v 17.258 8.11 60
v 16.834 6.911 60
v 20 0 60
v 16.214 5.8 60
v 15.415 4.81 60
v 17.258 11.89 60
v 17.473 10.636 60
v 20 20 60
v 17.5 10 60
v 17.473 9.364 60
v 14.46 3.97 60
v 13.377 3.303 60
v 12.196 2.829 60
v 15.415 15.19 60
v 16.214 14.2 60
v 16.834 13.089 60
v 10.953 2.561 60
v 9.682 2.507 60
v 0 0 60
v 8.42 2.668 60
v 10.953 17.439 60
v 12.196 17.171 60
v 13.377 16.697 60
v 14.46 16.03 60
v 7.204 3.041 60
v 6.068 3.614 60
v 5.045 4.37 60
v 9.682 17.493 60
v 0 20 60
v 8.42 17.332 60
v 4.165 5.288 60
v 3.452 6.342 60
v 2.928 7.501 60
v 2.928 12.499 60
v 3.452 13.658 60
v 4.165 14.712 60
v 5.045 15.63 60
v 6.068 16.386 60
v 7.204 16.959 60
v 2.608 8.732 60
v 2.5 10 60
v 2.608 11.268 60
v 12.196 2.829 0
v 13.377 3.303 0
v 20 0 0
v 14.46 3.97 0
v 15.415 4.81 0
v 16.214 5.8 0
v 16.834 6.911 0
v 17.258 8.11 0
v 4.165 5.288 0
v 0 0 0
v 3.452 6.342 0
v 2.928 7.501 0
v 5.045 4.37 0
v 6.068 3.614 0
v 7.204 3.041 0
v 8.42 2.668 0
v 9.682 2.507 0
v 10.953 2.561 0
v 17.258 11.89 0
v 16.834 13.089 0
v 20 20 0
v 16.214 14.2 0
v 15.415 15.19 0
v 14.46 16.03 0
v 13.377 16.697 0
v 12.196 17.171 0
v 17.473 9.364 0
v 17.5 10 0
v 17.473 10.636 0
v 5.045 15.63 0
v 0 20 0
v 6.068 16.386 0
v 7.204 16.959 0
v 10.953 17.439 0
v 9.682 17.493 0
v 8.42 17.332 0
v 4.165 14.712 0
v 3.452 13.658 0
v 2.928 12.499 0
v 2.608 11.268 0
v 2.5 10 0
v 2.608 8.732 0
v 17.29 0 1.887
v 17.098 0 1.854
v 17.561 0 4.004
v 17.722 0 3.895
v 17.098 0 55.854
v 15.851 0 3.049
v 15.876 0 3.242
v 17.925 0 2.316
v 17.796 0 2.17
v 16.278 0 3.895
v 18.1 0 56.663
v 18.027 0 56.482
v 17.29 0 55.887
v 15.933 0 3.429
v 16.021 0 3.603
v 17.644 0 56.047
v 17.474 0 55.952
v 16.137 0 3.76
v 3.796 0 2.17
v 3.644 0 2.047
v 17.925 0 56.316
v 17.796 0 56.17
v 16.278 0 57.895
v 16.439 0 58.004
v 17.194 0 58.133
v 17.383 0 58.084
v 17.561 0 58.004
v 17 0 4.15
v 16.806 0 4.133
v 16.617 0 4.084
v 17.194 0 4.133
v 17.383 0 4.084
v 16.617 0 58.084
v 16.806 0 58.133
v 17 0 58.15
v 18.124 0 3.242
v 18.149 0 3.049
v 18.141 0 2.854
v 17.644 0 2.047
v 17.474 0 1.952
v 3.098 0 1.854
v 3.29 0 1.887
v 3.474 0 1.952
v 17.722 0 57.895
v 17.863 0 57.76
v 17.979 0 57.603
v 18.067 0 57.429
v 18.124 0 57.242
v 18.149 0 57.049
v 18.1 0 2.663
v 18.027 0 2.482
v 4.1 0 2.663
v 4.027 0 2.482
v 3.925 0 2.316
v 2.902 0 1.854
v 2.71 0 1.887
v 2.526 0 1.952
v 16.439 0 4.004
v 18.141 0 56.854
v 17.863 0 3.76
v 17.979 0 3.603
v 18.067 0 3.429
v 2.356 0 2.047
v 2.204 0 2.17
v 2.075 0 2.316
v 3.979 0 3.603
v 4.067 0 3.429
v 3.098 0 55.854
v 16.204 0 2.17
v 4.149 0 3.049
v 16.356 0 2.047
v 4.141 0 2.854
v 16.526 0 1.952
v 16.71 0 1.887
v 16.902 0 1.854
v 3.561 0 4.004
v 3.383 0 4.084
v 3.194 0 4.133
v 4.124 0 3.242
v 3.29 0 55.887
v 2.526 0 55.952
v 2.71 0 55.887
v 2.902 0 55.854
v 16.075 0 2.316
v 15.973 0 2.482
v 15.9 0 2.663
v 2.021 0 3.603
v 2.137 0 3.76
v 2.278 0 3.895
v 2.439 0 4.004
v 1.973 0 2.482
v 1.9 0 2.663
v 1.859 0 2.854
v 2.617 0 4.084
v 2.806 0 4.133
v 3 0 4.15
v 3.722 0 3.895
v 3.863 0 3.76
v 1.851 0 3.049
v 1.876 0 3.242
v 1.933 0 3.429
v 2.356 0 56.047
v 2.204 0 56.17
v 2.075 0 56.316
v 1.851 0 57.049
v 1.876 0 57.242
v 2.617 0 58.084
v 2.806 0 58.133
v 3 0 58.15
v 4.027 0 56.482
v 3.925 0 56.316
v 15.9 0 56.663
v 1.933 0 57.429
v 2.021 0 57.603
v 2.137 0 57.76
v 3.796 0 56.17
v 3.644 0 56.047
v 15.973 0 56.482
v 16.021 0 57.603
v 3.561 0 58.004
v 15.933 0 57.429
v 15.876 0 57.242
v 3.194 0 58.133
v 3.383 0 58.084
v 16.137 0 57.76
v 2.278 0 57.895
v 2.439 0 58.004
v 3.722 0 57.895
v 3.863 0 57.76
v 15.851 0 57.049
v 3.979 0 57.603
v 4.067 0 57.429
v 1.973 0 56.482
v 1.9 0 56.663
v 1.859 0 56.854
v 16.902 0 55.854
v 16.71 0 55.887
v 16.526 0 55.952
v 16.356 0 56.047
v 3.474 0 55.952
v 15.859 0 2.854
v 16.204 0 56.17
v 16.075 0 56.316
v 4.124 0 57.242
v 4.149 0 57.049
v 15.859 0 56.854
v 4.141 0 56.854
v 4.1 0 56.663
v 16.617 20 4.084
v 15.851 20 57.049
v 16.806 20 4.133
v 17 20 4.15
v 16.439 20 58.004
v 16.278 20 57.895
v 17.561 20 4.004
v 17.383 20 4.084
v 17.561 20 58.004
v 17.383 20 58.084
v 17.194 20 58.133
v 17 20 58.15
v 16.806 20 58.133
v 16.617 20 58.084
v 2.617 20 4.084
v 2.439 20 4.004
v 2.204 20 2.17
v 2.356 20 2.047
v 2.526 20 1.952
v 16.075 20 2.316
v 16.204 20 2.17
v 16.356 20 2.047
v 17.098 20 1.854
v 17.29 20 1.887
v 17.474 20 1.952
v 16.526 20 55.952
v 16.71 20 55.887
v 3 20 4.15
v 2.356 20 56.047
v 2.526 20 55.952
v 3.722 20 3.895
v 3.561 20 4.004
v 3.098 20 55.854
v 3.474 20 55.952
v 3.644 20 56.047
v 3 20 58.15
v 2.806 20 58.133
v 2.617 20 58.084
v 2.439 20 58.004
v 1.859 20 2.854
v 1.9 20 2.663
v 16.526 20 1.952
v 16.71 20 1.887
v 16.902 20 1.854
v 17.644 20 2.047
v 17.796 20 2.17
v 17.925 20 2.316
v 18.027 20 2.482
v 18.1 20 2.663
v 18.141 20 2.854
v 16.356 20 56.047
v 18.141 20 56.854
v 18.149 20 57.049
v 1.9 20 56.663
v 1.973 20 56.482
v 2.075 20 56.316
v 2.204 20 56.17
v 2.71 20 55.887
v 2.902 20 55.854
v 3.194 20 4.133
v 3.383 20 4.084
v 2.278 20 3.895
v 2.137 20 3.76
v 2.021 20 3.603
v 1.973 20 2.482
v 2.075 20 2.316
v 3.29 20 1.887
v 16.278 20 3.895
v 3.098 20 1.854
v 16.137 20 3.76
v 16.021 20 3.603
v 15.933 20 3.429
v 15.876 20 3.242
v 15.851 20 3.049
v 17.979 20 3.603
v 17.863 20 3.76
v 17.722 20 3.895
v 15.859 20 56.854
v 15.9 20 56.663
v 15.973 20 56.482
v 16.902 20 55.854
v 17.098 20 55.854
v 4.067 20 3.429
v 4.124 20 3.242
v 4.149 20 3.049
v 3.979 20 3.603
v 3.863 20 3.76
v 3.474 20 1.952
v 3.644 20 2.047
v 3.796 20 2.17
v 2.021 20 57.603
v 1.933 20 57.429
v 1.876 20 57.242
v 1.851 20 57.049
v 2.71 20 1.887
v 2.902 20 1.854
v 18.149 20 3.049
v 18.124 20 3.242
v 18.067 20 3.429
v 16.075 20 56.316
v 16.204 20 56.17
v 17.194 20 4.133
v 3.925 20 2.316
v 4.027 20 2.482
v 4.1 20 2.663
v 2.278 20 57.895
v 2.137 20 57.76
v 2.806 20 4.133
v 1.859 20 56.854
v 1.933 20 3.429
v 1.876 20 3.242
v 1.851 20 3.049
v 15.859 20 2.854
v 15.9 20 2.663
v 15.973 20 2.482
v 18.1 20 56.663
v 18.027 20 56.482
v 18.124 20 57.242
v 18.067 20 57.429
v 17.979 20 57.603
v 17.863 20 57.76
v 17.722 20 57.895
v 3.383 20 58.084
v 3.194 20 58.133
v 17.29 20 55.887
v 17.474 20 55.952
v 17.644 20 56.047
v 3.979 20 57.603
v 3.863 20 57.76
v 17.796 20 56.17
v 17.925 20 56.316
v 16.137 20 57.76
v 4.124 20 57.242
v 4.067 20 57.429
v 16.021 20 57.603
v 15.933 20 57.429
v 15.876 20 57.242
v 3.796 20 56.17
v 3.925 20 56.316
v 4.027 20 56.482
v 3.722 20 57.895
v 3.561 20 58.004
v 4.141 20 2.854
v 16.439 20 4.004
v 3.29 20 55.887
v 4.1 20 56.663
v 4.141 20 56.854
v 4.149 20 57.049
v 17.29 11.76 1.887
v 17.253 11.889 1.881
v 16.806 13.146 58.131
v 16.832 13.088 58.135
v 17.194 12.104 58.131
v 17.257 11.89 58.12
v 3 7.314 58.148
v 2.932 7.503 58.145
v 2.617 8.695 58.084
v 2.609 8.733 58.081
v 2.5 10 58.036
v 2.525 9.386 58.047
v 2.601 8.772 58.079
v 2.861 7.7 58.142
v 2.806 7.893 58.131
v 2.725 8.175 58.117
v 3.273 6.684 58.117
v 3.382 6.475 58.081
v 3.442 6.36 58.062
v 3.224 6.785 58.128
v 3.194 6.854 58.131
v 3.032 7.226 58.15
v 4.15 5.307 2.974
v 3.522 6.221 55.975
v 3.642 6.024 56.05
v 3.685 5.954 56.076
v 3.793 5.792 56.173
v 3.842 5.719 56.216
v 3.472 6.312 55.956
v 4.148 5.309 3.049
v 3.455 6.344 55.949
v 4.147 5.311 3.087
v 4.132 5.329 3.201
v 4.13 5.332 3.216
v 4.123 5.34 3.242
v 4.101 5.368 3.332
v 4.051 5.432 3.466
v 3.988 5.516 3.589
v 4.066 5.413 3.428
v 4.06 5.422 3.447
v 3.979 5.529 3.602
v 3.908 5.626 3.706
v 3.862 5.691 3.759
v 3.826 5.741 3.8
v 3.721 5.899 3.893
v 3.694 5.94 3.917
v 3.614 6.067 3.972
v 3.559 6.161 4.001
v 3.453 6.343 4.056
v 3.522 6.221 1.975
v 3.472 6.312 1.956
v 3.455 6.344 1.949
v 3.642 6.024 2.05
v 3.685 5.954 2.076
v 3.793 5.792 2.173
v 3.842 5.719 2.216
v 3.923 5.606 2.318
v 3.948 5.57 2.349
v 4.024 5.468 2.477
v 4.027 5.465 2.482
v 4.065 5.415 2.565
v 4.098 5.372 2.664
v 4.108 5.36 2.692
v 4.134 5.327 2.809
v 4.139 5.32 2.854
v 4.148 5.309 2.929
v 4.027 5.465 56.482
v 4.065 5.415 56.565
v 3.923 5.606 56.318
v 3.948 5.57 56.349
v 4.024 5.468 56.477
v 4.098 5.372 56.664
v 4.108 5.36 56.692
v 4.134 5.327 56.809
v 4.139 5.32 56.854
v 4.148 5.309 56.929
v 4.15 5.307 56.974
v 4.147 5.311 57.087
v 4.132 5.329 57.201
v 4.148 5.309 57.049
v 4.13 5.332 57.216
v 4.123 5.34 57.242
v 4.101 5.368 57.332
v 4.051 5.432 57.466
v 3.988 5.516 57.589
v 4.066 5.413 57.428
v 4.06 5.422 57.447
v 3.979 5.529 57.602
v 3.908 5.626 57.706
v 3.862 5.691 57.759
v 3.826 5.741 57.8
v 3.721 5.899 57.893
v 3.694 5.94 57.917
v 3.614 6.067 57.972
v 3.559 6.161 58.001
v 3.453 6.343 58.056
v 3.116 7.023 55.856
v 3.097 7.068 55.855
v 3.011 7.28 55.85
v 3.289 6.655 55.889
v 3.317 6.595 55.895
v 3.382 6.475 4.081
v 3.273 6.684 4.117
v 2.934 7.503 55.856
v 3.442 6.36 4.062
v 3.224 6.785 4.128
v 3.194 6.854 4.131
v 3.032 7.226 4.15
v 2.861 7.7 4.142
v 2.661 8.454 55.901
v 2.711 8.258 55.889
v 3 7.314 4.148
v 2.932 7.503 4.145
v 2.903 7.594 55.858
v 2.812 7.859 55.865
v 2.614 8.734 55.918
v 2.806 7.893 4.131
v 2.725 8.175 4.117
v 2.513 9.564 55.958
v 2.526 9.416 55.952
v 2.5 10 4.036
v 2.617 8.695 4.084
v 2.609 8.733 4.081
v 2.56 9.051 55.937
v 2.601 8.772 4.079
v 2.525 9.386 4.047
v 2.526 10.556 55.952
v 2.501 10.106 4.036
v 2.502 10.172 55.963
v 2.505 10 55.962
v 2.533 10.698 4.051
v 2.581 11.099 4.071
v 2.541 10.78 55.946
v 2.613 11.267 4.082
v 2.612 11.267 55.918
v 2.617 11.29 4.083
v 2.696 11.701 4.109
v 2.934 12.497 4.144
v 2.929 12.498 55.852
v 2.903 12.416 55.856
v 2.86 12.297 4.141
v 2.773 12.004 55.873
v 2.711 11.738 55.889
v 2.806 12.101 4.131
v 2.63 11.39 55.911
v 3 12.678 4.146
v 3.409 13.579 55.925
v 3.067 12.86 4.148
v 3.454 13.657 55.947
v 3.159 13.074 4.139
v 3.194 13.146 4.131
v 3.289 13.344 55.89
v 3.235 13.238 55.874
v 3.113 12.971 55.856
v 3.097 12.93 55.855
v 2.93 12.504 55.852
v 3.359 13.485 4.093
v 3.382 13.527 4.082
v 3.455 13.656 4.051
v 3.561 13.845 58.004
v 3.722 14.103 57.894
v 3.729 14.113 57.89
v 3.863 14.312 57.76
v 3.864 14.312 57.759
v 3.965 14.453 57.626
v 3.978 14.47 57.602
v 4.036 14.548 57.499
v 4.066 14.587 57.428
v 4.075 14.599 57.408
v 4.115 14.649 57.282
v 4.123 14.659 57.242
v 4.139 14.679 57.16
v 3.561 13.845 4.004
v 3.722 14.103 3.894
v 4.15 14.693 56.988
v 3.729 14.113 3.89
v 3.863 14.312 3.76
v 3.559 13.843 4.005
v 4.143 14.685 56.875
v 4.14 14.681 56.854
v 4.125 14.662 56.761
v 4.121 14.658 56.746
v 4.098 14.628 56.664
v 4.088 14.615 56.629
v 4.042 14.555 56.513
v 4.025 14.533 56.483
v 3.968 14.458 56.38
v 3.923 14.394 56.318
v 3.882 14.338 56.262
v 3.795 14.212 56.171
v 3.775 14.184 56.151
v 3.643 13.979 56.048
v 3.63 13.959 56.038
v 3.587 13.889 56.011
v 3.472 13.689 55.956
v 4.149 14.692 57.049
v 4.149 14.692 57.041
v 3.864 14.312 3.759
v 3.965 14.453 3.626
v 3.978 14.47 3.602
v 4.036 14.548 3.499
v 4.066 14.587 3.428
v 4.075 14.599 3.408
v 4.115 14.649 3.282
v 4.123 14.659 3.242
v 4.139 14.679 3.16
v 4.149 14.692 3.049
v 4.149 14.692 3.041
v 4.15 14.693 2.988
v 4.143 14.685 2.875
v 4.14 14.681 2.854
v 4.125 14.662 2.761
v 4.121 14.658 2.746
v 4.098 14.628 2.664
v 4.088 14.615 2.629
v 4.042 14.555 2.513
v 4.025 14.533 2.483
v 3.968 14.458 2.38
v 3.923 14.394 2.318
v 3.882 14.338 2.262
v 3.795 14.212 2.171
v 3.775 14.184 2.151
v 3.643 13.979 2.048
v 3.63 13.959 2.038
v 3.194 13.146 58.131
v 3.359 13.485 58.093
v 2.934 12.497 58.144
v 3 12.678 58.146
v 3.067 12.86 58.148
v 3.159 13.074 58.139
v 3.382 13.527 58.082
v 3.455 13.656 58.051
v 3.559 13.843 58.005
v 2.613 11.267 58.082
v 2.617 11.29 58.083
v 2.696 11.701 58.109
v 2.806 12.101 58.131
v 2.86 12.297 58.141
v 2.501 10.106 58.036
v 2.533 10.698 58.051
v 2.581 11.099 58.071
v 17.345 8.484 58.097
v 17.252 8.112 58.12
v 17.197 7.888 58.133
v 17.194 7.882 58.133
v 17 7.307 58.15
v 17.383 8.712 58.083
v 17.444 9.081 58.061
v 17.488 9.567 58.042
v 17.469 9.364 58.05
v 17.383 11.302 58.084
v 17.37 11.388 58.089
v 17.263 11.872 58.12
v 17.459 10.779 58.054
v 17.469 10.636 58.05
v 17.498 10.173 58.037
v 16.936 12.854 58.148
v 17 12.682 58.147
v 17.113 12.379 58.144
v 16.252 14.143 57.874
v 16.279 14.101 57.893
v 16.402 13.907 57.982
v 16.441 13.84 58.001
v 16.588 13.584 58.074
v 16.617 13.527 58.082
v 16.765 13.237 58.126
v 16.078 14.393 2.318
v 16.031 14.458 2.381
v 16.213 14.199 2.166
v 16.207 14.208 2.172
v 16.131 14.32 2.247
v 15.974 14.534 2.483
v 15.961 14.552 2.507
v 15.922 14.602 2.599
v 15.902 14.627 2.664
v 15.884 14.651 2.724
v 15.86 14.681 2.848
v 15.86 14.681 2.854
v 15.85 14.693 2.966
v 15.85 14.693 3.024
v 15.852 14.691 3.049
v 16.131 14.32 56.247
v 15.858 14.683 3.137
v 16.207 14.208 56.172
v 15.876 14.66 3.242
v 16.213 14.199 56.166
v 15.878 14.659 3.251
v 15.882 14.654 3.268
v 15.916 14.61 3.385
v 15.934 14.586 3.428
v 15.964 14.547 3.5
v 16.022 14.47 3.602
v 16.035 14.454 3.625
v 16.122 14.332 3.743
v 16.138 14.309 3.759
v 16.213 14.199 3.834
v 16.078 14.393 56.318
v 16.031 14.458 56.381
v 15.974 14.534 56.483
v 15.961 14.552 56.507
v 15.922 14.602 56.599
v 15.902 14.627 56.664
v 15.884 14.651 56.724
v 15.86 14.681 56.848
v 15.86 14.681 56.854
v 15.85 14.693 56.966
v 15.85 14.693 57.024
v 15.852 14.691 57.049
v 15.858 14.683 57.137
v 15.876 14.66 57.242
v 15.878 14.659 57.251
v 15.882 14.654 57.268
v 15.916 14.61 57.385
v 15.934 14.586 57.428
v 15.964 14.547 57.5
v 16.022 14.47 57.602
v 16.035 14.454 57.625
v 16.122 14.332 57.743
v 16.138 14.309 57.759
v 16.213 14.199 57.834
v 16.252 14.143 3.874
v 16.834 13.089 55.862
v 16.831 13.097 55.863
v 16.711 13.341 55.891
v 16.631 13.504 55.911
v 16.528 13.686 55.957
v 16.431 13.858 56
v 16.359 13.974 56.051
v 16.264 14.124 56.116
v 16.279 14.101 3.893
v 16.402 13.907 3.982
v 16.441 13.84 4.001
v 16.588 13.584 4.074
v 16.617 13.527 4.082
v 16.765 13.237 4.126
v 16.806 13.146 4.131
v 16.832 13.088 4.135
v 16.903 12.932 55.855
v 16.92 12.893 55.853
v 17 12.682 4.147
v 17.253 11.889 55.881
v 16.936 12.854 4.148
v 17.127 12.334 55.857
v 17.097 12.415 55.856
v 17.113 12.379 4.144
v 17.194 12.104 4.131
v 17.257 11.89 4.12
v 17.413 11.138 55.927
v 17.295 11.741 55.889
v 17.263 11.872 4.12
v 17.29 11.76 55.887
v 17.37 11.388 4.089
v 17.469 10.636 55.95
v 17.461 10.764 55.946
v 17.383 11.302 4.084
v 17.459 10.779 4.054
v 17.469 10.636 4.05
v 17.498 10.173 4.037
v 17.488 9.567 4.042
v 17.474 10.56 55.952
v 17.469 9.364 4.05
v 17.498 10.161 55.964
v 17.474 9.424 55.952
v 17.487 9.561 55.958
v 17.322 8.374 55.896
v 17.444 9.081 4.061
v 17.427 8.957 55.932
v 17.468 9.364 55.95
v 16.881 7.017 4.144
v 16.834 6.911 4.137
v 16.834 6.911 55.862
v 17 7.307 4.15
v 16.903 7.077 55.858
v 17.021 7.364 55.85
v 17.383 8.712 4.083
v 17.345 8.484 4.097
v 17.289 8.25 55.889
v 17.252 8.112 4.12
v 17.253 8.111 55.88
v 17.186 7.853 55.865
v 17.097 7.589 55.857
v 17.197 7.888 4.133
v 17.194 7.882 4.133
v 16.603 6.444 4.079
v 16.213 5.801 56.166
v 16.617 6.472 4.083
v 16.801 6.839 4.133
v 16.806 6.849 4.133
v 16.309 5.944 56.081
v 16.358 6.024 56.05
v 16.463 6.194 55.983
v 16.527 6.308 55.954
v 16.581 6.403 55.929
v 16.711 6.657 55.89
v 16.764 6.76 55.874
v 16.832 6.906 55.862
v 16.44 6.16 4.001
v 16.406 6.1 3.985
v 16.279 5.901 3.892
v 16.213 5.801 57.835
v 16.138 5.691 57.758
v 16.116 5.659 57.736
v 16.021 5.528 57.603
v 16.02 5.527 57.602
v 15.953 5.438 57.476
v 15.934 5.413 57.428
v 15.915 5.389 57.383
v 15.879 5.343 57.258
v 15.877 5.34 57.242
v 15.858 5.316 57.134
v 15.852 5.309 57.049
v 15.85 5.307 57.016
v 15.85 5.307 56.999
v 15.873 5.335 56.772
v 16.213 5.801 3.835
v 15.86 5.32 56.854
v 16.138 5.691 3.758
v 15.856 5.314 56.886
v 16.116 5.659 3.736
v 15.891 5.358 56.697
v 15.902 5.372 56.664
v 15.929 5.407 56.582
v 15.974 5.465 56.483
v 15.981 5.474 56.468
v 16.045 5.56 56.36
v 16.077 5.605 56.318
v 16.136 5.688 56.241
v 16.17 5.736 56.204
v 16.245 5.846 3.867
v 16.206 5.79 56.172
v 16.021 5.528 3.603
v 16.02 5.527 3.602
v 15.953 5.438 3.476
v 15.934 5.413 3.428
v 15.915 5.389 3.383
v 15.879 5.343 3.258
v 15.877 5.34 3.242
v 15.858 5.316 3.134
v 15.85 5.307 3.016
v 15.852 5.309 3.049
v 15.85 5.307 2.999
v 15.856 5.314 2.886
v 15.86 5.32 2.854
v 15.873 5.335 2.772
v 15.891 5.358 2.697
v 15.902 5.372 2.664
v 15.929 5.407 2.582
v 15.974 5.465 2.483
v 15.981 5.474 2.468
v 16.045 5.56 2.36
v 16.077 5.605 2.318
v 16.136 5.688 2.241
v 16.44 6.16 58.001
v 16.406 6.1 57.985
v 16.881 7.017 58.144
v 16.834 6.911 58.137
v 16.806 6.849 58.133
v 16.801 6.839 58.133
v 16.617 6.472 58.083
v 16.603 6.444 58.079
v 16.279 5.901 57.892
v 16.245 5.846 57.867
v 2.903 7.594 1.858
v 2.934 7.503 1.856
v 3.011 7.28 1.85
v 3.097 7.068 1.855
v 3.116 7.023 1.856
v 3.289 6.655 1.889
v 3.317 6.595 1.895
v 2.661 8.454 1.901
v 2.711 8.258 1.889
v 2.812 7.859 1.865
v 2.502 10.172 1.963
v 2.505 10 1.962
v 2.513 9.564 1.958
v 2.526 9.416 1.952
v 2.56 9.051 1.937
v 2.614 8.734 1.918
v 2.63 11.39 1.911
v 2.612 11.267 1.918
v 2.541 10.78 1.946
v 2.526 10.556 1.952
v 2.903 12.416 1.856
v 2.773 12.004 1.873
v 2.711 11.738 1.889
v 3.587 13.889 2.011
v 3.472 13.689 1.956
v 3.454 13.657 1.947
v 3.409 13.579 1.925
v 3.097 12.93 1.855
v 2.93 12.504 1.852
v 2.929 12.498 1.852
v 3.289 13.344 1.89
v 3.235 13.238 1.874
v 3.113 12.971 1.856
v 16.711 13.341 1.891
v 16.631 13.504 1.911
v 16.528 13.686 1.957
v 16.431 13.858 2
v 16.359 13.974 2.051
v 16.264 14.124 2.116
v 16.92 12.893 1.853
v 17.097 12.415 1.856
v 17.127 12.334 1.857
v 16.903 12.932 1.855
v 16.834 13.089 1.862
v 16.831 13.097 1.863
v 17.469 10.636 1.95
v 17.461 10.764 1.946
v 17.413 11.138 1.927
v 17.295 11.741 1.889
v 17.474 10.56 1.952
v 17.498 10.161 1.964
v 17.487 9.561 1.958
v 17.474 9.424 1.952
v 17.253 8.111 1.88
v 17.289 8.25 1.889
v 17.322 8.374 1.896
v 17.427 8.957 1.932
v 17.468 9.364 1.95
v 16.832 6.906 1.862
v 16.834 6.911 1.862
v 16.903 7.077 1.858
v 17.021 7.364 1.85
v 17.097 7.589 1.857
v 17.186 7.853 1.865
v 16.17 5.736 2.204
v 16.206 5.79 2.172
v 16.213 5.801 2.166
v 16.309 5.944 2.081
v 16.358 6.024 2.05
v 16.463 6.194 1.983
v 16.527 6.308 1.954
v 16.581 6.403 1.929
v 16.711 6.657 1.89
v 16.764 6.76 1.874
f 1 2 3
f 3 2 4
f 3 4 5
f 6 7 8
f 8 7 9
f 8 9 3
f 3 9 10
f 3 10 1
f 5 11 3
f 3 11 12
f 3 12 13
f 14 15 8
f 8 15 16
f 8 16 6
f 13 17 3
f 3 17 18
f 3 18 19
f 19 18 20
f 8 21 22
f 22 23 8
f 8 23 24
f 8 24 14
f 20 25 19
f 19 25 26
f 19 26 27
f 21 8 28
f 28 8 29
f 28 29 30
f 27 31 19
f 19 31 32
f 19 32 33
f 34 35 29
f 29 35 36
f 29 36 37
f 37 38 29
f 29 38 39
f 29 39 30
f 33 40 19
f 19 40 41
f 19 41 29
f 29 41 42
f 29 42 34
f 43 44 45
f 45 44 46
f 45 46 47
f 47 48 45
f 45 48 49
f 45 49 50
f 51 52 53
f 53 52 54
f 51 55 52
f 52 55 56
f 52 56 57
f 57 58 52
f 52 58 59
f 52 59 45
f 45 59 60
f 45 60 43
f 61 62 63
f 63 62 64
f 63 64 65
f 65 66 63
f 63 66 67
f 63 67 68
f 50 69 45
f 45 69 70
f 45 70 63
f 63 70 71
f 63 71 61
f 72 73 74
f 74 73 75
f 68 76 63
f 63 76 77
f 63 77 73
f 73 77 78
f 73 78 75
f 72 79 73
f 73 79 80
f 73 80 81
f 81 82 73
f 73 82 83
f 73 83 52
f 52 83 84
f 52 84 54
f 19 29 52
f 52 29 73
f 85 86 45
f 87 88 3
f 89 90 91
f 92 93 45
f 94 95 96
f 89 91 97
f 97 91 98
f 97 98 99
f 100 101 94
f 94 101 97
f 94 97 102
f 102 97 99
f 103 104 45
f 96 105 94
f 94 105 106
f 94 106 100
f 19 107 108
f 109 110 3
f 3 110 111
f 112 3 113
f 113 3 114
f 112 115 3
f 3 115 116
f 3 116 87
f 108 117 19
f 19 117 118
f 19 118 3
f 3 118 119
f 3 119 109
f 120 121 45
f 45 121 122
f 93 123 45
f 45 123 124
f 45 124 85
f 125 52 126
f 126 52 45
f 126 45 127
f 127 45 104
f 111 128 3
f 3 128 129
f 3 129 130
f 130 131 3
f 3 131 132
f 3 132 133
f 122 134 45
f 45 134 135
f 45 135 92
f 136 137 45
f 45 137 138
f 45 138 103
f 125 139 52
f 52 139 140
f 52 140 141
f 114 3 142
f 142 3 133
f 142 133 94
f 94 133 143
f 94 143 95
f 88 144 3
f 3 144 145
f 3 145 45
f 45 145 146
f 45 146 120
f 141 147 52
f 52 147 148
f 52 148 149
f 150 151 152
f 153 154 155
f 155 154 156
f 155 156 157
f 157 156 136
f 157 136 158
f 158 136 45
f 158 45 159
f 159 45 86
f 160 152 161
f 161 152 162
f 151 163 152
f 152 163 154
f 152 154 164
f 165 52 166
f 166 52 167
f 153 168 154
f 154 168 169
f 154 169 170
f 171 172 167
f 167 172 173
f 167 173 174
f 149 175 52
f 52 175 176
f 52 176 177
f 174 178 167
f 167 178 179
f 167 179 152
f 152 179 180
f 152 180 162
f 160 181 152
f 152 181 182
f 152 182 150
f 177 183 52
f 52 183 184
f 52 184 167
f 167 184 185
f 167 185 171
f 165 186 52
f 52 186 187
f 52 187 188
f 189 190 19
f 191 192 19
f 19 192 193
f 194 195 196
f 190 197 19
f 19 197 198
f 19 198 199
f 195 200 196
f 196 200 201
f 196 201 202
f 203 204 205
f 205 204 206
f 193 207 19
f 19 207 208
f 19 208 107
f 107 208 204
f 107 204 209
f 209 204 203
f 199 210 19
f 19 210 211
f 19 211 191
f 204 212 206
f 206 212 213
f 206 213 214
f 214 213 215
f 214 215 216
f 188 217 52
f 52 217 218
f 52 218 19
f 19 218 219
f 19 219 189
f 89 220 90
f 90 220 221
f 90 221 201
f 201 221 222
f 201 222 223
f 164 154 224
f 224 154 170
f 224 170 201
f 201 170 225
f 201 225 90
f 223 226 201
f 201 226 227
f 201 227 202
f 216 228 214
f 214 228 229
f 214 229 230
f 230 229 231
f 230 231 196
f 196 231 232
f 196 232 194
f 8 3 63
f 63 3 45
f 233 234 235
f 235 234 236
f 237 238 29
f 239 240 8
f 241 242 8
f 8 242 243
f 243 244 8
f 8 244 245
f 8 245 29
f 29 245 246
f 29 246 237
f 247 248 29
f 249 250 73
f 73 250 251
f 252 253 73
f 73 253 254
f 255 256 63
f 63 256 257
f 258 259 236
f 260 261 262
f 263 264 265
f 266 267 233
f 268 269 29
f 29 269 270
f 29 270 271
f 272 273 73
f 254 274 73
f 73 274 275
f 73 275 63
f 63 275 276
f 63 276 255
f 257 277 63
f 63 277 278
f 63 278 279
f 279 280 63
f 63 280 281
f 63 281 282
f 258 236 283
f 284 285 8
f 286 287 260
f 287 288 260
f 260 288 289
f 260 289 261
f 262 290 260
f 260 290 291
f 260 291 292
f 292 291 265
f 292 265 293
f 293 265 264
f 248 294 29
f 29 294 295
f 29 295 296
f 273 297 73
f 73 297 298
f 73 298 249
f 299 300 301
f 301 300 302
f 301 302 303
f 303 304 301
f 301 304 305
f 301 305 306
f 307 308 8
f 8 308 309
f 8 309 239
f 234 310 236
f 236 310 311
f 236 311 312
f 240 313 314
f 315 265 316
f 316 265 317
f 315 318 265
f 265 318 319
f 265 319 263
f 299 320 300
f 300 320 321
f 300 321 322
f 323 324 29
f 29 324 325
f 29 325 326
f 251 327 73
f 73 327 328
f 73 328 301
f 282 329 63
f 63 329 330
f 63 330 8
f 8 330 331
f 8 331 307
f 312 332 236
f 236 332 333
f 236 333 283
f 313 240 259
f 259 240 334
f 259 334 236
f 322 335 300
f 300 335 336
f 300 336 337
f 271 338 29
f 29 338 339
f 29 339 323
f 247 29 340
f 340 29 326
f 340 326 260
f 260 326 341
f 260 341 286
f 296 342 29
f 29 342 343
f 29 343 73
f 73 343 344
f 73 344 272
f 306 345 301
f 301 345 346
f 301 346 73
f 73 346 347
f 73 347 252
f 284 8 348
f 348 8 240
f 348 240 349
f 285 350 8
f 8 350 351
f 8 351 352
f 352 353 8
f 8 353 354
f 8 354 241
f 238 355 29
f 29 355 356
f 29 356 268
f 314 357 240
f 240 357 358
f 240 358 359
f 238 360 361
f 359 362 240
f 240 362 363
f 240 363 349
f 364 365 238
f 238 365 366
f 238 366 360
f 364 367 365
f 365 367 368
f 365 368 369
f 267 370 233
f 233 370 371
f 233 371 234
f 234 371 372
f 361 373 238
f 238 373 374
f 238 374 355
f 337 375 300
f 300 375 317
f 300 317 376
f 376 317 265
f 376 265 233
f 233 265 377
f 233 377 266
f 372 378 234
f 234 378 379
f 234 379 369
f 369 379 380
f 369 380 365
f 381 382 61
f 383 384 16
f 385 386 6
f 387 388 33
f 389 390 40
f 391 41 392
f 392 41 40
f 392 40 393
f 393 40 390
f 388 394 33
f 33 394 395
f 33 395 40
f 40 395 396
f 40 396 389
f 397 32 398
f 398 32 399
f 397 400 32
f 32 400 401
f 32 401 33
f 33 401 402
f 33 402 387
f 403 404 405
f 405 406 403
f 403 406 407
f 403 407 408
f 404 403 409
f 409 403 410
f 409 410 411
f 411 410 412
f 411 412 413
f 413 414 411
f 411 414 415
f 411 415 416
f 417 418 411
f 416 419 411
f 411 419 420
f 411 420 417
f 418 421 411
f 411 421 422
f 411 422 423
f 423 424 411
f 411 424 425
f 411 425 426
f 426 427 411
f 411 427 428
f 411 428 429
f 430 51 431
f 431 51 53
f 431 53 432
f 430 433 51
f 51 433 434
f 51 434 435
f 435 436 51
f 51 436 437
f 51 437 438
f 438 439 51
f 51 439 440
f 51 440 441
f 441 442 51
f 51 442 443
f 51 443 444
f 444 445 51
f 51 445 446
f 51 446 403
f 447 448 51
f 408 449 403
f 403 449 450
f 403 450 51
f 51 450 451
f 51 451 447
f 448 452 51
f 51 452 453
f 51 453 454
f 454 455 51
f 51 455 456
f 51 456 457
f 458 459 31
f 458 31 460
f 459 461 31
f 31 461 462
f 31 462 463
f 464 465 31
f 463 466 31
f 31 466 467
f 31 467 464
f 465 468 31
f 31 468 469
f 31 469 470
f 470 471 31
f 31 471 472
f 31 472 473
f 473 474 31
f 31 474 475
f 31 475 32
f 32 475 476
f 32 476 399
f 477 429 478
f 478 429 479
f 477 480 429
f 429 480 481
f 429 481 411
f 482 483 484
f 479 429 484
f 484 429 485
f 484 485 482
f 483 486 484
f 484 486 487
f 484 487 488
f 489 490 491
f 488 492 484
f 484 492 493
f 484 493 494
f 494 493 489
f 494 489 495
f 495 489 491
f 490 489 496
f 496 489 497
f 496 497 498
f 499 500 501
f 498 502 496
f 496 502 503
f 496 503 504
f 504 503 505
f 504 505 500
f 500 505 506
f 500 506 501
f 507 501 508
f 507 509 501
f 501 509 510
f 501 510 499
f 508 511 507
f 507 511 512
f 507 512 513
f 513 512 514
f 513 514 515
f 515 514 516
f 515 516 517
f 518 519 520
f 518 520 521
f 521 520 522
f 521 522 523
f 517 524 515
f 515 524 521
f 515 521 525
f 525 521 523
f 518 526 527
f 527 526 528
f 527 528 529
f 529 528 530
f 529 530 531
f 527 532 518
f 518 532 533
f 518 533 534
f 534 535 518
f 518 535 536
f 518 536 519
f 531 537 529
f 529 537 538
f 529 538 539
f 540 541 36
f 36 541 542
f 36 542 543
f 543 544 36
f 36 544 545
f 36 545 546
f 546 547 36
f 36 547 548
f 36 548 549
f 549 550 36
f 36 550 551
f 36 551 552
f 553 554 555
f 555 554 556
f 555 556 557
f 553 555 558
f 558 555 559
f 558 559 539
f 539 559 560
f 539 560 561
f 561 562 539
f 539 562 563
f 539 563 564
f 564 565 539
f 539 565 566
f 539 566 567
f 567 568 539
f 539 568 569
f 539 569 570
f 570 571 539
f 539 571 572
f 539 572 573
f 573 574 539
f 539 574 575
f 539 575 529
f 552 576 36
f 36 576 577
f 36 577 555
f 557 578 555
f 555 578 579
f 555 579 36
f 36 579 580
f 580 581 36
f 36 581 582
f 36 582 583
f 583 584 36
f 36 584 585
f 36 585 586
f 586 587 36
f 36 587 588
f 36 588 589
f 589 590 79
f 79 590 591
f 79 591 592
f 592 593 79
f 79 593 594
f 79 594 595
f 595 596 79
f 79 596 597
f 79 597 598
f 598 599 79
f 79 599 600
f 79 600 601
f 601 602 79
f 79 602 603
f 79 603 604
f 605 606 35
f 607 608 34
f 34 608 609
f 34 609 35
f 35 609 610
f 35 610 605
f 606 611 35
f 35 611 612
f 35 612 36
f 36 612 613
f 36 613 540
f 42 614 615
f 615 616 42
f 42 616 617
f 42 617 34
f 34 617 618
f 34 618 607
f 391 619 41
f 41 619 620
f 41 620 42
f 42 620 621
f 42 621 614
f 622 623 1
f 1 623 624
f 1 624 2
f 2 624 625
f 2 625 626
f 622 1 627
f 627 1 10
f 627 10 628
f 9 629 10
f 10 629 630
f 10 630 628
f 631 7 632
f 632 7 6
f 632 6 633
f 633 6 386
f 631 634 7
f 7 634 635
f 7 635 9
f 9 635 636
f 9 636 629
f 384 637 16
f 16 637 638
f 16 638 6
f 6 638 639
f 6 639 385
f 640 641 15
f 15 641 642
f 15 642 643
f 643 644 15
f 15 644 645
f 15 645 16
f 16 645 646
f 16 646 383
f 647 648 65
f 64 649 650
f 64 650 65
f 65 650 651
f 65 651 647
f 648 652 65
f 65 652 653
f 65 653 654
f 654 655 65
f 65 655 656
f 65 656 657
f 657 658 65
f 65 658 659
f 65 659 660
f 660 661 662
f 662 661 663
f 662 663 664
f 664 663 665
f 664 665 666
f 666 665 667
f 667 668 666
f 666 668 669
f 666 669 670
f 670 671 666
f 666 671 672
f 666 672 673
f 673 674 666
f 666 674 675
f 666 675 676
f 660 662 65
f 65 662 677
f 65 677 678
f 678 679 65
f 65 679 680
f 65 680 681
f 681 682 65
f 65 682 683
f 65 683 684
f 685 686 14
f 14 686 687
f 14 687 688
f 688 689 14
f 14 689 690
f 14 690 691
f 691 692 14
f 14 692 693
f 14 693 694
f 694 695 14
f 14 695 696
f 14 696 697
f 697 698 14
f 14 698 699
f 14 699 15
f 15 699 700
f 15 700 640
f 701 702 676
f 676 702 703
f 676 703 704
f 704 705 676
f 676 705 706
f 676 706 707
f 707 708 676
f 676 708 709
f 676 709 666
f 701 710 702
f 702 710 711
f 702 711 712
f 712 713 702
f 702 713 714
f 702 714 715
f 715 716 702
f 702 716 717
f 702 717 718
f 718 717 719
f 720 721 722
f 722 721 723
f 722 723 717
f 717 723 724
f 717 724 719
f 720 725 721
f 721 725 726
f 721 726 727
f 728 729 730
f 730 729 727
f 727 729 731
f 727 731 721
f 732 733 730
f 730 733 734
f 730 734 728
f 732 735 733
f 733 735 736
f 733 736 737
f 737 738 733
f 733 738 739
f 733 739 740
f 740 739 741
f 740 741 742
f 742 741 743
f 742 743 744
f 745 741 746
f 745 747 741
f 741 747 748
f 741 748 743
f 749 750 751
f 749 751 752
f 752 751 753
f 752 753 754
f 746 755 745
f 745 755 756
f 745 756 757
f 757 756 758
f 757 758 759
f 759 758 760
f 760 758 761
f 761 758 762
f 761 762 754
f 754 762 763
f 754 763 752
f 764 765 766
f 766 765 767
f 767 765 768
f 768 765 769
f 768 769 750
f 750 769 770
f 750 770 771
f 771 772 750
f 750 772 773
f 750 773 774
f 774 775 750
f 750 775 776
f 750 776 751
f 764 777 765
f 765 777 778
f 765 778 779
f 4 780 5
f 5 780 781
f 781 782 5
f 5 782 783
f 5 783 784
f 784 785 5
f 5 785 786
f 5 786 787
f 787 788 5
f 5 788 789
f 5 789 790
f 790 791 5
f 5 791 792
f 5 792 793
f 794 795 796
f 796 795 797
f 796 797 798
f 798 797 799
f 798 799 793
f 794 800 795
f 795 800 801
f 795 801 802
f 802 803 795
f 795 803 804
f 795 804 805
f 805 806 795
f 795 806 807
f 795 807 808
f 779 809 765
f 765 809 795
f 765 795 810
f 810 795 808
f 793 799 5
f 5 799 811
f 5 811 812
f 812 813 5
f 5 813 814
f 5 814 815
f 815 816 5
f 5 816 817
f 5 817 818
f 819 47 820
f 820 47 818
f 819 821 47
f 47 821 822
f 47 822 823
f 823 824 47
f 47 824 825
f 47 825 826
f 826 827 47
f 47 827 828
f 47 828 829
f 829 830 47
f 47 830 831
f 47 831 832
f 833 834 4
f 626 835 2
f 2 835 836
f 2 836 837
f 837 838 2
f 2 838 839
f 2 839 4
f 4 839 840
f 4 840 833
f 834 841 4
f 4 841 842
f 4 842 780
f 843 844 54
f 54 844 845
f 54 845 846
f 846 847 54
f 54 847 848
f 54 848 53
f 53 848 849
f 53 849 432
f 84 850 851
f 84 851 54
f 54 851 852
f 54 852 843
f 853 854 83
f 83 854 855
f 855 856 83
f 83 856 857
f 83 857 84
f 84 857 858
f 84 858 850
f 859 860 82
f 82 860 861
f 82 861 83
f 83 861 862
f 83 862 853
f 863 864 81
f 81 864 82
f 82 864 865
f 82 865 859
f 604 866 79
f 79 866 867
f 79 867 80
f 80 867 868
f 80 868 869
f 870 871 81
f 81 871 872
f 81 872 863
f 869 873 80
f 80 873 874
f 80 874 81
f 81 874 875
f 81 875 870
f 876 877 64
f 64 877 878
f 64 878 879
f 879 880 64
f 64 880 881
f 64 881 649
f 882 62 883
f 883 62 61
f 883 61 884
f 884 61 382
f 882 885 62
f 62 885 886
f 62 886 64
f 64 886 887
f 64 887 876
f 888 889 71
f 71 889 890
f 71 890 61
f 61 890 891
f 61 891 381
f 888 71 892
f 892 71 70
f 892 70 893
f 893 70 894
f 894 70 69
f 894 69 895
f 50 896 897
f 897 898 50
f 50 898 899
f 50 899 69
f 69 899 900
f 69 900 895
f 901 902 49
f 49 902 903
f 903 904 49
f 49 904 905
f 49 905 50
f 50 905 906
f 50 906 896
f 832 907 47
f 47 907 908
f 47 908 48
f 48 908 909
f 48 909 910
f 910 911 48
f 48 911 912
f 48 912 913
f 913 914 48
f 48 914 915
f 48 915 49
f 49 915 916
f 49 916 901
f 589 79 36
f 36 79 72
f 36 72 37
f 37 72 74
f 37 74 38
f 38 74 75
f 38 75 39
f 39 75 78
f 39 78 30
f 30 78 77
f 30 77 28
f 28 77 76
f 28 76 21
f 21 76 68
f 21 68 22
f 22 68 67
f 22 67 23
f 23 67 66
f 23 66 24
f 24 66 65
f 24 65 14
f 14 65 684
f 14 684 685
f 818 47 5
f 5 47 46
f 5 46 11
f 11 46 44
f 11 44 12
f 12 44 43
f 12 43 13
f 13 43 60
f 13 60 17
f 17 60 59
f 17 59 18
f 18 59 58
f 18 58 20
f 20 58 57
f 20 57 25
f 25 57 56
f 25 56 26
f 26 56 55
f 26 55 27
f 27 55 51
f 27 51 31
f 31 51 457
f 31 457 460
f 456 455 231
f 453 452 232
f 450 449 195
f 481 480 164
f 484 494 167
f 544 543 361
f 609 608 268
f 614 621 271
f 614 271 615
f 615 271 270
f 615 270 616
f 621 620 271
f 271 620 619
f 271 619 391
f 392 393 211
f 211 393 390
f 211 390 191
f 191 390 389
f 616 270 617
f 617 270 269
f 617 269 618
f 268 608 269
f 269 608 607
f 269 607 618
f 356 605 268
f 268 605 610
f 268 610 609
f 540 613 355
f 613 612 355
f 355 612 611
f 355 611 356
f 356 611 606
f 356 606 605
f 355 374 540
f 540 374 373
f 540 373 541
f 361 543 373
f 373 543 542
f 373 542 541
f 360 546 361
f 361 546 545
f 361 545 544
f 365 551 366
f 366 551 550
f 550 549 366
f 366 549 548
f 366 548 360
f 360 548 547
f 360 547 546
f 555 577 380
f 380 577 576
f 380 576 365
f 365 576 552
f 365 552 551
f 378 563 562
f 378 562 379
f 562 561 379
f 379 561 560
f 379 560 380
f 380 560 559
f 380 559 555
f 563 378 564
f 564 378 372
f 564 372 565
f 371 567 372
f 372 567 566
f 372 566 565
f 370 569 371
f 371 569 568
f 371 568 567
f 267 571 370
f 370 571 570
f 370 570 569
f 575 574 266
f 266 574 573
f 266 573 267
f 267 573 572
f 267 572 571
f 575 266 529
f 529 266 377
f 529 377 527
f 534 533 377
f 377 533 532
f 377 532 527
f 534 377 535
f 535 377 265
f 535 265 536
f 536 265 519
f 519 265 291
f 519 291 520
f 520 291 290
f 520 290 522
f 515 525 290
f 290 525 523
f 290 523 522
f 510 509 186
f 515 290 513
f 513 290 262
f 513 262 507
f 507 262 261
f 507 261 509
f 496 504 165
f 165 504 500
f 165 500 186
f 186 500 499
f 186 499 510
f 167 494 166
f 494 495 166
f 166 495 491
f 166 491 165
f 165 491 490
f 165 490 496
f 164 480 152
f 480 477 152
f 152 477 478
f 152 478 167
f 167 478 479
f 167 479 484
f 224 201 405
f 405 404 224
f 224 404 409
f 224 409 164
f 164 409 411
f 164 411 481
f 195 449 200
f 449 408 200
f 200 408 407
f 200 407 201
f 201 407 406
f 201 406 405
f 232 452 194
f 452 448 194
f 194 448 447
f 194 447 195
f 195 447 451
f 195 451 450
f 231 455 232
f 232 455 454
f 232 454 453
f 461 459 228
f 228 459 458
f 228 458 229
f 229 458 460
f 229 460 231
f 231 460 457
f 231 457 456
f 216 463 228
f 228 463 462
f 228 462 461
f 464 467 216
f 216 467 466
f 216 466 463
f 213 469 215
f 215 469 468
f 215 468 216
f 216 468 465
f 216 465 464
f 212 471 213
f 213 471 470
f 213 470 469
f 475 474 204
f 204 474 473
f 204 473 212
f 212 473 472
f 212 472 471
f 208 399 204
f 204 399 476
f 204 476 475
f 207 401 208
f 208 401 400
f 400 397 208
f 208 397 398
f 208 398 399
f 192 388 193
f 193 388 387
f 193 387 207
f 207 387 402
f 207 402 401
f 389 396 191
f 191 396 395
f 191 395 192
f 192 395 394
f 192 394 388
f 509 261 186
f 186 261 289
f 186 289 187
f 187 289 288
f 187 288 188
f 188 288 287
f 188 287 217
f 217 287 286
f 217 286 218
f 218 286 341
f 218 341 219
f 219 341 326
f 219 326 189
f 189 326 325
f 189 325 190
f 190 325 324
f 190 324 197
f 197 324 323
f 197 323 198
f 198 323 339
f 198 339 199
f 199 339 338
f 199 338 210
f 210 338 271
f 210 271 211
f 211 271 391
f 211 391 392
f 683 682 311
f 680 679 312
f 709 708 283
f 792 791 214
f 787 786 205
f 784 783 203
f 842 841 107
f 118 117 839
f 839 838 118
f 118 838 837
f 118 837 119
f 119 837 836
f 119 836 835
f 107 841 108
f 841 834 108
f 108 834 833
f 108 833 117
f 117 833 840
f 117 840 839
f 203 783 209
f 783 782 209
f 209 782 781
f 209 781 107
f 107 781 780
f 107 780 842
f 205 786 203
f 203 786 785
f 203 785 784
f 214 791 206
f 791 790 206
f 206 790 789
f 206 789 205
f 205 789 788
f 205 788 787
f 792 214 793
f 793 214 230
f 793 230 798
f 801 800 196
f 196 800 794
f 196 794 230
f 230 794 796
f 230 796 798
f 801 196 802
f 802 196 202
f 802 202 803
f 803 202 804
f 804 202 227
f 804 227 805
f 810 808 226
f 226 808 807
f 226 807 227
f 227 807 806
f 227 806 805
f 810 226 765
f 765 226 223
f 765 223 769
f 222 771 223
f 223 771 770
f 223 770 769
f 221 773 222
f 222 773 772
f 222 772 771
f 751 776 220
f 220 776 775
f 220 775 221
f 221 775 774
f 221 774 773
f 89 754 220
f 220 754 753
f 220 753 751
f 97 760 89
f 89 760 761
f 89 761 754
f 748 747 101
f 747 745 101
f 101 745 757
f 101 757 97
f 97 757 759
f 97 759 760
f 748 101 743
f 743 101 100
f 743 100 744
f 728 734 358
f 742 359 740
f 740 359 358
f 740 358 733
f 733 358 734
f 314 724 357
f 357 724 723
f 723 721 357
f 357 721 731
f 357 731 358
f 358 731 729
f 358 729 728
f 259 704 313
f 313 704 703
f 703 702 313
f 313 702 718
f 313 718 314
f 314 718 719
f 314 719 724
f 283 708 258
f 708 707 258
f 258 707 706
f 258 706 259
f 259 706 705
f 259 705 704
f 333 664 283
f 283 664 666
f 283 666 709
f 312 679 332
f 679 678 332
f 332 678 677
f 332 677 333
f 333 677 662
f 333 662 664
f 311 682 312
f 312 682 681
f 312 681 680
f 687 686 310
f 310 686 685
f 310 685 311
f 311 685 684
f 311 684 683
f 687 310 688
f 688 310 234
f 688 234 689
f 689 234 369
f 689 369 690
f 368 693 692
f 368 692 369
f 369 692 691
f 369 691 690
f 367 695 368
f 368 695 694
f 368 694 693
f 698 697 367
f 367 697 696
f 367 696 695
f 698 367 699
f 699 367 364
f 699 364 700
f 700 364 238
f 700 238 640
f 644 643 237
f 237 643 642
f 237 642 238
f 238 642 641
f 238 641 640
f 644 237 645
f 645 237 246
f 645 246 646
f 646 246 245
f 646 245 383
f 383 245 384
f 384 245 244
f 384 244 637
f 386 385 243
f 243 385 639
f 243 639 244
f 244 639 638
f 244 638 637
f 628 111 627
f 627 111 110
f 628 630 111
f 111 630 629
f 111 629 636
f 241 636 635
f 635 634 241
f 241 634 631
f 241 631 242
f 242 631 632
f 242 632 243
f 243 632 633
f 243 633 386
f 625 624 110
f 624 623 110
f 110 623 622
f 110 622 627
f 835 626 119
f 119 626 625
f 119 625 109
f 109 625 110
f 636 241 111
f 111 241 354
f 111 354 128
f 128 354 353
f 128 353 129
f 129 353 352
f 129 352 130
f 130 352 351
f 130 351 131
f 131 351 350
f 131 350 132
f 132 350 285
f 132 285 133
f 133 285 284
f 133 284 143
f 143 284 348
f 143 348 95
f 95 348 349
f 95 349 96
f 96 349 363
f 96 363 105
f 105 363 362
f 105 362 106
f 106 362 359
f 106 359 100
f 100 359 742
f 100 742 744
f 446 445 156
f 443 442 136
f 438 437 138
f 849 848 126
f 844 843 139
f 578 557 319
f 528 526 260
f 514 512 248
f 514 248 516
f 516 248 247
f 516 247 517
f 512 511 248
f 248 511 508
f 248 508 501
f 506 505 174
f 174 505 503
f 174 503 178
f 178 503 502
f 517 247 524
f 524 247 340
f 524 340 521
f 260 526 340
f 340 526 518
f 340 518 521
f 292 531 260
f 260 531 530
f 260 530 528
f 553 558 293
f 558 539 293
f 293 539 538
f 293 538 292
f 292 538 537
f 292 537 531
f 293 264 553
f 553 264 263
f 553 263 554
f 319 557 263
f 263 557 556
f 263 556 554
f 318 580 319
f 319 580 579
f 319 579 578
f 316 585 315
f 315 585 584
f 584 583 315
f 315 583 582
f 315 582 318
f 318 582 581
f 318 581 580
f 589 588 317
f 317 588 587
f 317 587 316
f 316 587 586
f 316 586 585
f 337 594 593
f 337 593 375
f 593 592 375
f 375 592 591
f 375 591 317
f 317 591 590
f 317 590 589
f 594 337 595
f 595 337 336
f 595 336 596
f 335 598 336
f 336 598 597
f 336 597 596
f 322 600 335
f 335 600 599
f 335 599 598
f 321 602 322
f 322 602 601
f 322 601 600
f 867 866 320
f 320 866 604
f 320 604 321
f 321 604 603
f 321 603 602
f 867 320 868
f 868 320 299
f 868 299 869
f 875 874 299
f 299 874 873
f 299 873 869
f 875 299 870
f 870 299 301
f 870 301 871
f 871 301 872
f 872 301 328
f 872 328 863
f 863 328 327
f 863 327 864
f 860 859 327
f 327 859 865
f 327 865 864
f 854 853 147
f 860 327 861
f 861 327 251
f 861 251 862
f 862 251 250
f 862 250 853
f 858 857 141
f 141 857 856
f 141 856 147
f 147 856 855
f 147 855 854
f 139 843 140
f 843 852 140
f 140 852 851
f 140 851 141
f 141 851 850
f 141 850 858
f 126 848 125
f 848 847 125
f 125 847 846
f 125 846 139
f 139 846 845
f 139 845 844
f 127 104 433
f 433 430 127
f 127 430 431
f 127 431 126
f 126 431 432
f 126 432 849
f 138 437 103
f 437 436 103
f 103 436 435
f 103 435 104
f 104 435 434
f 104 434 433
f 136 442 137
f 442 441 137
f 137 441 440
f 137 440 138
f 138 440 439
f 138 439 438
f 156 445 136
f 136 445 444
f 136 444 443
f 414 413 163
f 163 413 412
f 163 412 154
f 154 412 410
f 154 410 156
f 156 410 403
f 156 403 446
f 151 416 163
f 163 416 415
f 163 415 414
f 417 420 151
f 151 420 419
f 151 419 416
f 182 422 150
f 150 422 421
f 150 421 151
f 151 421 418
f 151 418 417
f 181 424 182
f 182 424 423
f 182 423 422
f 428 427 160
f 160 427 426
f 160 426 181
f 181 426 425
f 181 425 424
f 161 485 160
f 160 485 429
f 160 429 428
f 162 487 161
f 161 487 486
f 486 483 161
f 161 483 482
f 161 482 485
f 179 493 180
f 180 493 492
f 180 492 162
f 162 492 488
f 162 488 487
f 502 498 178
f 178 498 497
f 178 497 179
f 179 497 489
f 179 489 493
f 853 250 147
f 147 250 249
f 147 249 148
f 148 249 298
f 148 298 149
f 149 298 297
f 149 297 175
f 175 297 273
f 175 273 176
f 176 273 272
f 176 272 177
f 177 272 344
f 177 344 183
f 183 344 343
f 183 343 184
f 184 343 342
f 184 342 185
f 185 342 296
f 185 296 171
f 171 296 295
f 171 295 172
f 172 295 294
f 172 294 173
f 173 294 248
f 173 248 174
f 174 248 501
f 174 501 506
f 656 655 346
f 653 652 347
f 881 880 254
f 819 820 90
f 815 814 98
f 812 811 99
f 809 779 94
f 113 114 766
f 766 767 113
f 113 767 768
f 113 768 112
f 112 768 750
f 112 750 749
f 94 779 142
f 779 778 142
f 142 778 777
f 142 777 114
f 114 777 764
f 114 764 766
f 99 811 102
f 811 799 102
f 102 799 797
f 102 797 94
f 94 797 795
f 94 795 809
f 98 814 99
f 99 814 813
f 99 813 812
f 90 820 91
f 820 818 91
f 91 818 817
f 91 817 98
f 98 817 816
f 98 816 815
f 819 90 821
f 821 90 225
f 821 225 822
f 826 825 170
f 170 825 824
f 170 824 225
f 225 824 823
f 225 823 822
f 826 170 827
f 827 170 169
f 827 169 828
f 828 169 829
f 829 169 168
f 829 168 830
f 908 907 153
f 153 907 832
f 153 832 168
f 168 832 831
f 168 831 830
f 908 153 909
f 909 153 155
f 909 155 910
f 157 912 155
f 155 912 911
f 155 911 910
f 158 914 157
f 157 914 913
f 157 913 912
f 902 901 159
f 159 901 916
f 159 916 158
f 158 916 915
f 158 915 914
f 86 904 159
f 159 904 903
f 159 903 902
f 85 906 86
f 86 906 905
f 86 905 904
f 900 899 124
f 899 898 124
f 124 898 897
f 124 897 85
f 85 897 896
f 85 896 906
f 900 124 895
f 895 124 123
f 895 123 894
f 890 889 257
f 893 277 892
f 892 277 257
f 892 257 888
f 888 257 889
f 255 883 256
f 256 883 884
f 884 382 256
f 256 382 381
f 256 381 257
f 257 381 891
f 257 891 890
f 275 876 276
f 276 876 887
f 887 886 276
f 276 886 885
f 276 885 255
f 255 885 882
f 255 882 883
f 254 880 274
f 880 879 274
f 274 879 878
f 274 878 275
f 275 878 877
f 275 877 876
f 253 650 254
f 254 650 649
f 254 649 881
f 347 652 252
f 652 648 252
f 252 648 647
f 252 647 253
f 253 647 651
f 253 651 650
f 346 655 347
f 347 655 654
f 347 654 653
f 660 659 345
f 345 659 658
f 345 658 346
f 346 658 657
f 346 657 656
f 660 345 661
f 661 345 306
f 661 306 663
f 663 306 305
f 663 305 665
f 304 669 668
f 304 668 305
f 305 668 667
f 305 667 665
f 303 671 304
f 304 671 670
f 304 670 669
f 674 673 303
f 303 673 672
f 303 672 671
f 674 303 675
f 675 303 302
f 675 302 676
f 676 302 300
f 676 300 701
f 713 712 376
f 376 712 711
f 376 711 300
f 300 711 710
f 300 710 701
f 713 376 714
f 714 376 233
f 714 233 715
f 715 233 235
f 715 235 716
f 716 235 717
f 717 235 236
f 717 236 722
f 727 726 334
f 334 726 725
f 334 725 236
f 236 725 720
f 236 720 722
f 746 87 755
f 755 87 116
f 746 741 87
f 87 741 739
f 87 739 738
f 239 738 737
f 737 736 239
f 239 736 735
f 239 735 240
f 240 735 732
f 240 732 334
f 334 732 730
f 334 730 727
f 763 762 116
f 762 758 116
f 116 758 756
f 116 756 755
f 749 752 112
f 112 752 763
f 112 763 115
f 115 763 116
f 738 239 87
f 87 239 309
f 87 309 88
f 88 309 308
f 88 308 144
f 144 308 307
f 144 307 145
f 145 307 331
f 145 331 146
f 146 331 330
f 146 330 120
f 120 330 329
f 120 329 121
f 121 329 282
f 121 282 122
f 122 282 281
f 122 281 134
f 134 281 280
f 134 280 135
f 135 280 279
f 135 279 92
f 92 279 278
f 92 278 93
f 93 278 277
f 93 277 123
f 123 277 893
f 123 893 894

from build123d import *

# Parameters (mm, degrees)
SKETCH1_W           = 20
SKETCH1_H           = 20
SKETCH1_R           = 7.5
BOSS_EXTRUDE1_DEPTH = 60
SKETCH2_R           = 1.15
CUT_EXTRUDE1_DEPTH  = 21


with BuildPart() as part:
    # Sketch1 → Boss-Extrude1 (new body)
    with BuildSketch(Plane.XY):
        with Locations((10, 10)):
            Rectangle(SKETCH1_W, SKETCH1_H)
        with Locations((10, 10)):
            Circle(SKETCH1_R, mode=Mode.SUBTRACT)
    extrude(amount=BOSS_EXTRUDE1_DEPTH)

    # Sketch2 → Cut-Extrude1 (cut, through all)
    with BuildSketch(Plane(origin=(0, 20, 0), x_dir=(1, 0, 0), z_dir=(0, 1, 0))):
        with Locations((3, -57)):
            Circle(SKETCH2_R)
        with Locations((17, -57)):
            Circle(SKETCH2_R)
        with Locations((3, -3)):
            Circle(SKETCH2_R)
        with Locations((17, -3)):
            Circle(SKETCH2_R)
    extrude(amount=-CUT_EXTRUDE1_DEPTH, mode=Mode.SUBTRACT)


solid = part.part
